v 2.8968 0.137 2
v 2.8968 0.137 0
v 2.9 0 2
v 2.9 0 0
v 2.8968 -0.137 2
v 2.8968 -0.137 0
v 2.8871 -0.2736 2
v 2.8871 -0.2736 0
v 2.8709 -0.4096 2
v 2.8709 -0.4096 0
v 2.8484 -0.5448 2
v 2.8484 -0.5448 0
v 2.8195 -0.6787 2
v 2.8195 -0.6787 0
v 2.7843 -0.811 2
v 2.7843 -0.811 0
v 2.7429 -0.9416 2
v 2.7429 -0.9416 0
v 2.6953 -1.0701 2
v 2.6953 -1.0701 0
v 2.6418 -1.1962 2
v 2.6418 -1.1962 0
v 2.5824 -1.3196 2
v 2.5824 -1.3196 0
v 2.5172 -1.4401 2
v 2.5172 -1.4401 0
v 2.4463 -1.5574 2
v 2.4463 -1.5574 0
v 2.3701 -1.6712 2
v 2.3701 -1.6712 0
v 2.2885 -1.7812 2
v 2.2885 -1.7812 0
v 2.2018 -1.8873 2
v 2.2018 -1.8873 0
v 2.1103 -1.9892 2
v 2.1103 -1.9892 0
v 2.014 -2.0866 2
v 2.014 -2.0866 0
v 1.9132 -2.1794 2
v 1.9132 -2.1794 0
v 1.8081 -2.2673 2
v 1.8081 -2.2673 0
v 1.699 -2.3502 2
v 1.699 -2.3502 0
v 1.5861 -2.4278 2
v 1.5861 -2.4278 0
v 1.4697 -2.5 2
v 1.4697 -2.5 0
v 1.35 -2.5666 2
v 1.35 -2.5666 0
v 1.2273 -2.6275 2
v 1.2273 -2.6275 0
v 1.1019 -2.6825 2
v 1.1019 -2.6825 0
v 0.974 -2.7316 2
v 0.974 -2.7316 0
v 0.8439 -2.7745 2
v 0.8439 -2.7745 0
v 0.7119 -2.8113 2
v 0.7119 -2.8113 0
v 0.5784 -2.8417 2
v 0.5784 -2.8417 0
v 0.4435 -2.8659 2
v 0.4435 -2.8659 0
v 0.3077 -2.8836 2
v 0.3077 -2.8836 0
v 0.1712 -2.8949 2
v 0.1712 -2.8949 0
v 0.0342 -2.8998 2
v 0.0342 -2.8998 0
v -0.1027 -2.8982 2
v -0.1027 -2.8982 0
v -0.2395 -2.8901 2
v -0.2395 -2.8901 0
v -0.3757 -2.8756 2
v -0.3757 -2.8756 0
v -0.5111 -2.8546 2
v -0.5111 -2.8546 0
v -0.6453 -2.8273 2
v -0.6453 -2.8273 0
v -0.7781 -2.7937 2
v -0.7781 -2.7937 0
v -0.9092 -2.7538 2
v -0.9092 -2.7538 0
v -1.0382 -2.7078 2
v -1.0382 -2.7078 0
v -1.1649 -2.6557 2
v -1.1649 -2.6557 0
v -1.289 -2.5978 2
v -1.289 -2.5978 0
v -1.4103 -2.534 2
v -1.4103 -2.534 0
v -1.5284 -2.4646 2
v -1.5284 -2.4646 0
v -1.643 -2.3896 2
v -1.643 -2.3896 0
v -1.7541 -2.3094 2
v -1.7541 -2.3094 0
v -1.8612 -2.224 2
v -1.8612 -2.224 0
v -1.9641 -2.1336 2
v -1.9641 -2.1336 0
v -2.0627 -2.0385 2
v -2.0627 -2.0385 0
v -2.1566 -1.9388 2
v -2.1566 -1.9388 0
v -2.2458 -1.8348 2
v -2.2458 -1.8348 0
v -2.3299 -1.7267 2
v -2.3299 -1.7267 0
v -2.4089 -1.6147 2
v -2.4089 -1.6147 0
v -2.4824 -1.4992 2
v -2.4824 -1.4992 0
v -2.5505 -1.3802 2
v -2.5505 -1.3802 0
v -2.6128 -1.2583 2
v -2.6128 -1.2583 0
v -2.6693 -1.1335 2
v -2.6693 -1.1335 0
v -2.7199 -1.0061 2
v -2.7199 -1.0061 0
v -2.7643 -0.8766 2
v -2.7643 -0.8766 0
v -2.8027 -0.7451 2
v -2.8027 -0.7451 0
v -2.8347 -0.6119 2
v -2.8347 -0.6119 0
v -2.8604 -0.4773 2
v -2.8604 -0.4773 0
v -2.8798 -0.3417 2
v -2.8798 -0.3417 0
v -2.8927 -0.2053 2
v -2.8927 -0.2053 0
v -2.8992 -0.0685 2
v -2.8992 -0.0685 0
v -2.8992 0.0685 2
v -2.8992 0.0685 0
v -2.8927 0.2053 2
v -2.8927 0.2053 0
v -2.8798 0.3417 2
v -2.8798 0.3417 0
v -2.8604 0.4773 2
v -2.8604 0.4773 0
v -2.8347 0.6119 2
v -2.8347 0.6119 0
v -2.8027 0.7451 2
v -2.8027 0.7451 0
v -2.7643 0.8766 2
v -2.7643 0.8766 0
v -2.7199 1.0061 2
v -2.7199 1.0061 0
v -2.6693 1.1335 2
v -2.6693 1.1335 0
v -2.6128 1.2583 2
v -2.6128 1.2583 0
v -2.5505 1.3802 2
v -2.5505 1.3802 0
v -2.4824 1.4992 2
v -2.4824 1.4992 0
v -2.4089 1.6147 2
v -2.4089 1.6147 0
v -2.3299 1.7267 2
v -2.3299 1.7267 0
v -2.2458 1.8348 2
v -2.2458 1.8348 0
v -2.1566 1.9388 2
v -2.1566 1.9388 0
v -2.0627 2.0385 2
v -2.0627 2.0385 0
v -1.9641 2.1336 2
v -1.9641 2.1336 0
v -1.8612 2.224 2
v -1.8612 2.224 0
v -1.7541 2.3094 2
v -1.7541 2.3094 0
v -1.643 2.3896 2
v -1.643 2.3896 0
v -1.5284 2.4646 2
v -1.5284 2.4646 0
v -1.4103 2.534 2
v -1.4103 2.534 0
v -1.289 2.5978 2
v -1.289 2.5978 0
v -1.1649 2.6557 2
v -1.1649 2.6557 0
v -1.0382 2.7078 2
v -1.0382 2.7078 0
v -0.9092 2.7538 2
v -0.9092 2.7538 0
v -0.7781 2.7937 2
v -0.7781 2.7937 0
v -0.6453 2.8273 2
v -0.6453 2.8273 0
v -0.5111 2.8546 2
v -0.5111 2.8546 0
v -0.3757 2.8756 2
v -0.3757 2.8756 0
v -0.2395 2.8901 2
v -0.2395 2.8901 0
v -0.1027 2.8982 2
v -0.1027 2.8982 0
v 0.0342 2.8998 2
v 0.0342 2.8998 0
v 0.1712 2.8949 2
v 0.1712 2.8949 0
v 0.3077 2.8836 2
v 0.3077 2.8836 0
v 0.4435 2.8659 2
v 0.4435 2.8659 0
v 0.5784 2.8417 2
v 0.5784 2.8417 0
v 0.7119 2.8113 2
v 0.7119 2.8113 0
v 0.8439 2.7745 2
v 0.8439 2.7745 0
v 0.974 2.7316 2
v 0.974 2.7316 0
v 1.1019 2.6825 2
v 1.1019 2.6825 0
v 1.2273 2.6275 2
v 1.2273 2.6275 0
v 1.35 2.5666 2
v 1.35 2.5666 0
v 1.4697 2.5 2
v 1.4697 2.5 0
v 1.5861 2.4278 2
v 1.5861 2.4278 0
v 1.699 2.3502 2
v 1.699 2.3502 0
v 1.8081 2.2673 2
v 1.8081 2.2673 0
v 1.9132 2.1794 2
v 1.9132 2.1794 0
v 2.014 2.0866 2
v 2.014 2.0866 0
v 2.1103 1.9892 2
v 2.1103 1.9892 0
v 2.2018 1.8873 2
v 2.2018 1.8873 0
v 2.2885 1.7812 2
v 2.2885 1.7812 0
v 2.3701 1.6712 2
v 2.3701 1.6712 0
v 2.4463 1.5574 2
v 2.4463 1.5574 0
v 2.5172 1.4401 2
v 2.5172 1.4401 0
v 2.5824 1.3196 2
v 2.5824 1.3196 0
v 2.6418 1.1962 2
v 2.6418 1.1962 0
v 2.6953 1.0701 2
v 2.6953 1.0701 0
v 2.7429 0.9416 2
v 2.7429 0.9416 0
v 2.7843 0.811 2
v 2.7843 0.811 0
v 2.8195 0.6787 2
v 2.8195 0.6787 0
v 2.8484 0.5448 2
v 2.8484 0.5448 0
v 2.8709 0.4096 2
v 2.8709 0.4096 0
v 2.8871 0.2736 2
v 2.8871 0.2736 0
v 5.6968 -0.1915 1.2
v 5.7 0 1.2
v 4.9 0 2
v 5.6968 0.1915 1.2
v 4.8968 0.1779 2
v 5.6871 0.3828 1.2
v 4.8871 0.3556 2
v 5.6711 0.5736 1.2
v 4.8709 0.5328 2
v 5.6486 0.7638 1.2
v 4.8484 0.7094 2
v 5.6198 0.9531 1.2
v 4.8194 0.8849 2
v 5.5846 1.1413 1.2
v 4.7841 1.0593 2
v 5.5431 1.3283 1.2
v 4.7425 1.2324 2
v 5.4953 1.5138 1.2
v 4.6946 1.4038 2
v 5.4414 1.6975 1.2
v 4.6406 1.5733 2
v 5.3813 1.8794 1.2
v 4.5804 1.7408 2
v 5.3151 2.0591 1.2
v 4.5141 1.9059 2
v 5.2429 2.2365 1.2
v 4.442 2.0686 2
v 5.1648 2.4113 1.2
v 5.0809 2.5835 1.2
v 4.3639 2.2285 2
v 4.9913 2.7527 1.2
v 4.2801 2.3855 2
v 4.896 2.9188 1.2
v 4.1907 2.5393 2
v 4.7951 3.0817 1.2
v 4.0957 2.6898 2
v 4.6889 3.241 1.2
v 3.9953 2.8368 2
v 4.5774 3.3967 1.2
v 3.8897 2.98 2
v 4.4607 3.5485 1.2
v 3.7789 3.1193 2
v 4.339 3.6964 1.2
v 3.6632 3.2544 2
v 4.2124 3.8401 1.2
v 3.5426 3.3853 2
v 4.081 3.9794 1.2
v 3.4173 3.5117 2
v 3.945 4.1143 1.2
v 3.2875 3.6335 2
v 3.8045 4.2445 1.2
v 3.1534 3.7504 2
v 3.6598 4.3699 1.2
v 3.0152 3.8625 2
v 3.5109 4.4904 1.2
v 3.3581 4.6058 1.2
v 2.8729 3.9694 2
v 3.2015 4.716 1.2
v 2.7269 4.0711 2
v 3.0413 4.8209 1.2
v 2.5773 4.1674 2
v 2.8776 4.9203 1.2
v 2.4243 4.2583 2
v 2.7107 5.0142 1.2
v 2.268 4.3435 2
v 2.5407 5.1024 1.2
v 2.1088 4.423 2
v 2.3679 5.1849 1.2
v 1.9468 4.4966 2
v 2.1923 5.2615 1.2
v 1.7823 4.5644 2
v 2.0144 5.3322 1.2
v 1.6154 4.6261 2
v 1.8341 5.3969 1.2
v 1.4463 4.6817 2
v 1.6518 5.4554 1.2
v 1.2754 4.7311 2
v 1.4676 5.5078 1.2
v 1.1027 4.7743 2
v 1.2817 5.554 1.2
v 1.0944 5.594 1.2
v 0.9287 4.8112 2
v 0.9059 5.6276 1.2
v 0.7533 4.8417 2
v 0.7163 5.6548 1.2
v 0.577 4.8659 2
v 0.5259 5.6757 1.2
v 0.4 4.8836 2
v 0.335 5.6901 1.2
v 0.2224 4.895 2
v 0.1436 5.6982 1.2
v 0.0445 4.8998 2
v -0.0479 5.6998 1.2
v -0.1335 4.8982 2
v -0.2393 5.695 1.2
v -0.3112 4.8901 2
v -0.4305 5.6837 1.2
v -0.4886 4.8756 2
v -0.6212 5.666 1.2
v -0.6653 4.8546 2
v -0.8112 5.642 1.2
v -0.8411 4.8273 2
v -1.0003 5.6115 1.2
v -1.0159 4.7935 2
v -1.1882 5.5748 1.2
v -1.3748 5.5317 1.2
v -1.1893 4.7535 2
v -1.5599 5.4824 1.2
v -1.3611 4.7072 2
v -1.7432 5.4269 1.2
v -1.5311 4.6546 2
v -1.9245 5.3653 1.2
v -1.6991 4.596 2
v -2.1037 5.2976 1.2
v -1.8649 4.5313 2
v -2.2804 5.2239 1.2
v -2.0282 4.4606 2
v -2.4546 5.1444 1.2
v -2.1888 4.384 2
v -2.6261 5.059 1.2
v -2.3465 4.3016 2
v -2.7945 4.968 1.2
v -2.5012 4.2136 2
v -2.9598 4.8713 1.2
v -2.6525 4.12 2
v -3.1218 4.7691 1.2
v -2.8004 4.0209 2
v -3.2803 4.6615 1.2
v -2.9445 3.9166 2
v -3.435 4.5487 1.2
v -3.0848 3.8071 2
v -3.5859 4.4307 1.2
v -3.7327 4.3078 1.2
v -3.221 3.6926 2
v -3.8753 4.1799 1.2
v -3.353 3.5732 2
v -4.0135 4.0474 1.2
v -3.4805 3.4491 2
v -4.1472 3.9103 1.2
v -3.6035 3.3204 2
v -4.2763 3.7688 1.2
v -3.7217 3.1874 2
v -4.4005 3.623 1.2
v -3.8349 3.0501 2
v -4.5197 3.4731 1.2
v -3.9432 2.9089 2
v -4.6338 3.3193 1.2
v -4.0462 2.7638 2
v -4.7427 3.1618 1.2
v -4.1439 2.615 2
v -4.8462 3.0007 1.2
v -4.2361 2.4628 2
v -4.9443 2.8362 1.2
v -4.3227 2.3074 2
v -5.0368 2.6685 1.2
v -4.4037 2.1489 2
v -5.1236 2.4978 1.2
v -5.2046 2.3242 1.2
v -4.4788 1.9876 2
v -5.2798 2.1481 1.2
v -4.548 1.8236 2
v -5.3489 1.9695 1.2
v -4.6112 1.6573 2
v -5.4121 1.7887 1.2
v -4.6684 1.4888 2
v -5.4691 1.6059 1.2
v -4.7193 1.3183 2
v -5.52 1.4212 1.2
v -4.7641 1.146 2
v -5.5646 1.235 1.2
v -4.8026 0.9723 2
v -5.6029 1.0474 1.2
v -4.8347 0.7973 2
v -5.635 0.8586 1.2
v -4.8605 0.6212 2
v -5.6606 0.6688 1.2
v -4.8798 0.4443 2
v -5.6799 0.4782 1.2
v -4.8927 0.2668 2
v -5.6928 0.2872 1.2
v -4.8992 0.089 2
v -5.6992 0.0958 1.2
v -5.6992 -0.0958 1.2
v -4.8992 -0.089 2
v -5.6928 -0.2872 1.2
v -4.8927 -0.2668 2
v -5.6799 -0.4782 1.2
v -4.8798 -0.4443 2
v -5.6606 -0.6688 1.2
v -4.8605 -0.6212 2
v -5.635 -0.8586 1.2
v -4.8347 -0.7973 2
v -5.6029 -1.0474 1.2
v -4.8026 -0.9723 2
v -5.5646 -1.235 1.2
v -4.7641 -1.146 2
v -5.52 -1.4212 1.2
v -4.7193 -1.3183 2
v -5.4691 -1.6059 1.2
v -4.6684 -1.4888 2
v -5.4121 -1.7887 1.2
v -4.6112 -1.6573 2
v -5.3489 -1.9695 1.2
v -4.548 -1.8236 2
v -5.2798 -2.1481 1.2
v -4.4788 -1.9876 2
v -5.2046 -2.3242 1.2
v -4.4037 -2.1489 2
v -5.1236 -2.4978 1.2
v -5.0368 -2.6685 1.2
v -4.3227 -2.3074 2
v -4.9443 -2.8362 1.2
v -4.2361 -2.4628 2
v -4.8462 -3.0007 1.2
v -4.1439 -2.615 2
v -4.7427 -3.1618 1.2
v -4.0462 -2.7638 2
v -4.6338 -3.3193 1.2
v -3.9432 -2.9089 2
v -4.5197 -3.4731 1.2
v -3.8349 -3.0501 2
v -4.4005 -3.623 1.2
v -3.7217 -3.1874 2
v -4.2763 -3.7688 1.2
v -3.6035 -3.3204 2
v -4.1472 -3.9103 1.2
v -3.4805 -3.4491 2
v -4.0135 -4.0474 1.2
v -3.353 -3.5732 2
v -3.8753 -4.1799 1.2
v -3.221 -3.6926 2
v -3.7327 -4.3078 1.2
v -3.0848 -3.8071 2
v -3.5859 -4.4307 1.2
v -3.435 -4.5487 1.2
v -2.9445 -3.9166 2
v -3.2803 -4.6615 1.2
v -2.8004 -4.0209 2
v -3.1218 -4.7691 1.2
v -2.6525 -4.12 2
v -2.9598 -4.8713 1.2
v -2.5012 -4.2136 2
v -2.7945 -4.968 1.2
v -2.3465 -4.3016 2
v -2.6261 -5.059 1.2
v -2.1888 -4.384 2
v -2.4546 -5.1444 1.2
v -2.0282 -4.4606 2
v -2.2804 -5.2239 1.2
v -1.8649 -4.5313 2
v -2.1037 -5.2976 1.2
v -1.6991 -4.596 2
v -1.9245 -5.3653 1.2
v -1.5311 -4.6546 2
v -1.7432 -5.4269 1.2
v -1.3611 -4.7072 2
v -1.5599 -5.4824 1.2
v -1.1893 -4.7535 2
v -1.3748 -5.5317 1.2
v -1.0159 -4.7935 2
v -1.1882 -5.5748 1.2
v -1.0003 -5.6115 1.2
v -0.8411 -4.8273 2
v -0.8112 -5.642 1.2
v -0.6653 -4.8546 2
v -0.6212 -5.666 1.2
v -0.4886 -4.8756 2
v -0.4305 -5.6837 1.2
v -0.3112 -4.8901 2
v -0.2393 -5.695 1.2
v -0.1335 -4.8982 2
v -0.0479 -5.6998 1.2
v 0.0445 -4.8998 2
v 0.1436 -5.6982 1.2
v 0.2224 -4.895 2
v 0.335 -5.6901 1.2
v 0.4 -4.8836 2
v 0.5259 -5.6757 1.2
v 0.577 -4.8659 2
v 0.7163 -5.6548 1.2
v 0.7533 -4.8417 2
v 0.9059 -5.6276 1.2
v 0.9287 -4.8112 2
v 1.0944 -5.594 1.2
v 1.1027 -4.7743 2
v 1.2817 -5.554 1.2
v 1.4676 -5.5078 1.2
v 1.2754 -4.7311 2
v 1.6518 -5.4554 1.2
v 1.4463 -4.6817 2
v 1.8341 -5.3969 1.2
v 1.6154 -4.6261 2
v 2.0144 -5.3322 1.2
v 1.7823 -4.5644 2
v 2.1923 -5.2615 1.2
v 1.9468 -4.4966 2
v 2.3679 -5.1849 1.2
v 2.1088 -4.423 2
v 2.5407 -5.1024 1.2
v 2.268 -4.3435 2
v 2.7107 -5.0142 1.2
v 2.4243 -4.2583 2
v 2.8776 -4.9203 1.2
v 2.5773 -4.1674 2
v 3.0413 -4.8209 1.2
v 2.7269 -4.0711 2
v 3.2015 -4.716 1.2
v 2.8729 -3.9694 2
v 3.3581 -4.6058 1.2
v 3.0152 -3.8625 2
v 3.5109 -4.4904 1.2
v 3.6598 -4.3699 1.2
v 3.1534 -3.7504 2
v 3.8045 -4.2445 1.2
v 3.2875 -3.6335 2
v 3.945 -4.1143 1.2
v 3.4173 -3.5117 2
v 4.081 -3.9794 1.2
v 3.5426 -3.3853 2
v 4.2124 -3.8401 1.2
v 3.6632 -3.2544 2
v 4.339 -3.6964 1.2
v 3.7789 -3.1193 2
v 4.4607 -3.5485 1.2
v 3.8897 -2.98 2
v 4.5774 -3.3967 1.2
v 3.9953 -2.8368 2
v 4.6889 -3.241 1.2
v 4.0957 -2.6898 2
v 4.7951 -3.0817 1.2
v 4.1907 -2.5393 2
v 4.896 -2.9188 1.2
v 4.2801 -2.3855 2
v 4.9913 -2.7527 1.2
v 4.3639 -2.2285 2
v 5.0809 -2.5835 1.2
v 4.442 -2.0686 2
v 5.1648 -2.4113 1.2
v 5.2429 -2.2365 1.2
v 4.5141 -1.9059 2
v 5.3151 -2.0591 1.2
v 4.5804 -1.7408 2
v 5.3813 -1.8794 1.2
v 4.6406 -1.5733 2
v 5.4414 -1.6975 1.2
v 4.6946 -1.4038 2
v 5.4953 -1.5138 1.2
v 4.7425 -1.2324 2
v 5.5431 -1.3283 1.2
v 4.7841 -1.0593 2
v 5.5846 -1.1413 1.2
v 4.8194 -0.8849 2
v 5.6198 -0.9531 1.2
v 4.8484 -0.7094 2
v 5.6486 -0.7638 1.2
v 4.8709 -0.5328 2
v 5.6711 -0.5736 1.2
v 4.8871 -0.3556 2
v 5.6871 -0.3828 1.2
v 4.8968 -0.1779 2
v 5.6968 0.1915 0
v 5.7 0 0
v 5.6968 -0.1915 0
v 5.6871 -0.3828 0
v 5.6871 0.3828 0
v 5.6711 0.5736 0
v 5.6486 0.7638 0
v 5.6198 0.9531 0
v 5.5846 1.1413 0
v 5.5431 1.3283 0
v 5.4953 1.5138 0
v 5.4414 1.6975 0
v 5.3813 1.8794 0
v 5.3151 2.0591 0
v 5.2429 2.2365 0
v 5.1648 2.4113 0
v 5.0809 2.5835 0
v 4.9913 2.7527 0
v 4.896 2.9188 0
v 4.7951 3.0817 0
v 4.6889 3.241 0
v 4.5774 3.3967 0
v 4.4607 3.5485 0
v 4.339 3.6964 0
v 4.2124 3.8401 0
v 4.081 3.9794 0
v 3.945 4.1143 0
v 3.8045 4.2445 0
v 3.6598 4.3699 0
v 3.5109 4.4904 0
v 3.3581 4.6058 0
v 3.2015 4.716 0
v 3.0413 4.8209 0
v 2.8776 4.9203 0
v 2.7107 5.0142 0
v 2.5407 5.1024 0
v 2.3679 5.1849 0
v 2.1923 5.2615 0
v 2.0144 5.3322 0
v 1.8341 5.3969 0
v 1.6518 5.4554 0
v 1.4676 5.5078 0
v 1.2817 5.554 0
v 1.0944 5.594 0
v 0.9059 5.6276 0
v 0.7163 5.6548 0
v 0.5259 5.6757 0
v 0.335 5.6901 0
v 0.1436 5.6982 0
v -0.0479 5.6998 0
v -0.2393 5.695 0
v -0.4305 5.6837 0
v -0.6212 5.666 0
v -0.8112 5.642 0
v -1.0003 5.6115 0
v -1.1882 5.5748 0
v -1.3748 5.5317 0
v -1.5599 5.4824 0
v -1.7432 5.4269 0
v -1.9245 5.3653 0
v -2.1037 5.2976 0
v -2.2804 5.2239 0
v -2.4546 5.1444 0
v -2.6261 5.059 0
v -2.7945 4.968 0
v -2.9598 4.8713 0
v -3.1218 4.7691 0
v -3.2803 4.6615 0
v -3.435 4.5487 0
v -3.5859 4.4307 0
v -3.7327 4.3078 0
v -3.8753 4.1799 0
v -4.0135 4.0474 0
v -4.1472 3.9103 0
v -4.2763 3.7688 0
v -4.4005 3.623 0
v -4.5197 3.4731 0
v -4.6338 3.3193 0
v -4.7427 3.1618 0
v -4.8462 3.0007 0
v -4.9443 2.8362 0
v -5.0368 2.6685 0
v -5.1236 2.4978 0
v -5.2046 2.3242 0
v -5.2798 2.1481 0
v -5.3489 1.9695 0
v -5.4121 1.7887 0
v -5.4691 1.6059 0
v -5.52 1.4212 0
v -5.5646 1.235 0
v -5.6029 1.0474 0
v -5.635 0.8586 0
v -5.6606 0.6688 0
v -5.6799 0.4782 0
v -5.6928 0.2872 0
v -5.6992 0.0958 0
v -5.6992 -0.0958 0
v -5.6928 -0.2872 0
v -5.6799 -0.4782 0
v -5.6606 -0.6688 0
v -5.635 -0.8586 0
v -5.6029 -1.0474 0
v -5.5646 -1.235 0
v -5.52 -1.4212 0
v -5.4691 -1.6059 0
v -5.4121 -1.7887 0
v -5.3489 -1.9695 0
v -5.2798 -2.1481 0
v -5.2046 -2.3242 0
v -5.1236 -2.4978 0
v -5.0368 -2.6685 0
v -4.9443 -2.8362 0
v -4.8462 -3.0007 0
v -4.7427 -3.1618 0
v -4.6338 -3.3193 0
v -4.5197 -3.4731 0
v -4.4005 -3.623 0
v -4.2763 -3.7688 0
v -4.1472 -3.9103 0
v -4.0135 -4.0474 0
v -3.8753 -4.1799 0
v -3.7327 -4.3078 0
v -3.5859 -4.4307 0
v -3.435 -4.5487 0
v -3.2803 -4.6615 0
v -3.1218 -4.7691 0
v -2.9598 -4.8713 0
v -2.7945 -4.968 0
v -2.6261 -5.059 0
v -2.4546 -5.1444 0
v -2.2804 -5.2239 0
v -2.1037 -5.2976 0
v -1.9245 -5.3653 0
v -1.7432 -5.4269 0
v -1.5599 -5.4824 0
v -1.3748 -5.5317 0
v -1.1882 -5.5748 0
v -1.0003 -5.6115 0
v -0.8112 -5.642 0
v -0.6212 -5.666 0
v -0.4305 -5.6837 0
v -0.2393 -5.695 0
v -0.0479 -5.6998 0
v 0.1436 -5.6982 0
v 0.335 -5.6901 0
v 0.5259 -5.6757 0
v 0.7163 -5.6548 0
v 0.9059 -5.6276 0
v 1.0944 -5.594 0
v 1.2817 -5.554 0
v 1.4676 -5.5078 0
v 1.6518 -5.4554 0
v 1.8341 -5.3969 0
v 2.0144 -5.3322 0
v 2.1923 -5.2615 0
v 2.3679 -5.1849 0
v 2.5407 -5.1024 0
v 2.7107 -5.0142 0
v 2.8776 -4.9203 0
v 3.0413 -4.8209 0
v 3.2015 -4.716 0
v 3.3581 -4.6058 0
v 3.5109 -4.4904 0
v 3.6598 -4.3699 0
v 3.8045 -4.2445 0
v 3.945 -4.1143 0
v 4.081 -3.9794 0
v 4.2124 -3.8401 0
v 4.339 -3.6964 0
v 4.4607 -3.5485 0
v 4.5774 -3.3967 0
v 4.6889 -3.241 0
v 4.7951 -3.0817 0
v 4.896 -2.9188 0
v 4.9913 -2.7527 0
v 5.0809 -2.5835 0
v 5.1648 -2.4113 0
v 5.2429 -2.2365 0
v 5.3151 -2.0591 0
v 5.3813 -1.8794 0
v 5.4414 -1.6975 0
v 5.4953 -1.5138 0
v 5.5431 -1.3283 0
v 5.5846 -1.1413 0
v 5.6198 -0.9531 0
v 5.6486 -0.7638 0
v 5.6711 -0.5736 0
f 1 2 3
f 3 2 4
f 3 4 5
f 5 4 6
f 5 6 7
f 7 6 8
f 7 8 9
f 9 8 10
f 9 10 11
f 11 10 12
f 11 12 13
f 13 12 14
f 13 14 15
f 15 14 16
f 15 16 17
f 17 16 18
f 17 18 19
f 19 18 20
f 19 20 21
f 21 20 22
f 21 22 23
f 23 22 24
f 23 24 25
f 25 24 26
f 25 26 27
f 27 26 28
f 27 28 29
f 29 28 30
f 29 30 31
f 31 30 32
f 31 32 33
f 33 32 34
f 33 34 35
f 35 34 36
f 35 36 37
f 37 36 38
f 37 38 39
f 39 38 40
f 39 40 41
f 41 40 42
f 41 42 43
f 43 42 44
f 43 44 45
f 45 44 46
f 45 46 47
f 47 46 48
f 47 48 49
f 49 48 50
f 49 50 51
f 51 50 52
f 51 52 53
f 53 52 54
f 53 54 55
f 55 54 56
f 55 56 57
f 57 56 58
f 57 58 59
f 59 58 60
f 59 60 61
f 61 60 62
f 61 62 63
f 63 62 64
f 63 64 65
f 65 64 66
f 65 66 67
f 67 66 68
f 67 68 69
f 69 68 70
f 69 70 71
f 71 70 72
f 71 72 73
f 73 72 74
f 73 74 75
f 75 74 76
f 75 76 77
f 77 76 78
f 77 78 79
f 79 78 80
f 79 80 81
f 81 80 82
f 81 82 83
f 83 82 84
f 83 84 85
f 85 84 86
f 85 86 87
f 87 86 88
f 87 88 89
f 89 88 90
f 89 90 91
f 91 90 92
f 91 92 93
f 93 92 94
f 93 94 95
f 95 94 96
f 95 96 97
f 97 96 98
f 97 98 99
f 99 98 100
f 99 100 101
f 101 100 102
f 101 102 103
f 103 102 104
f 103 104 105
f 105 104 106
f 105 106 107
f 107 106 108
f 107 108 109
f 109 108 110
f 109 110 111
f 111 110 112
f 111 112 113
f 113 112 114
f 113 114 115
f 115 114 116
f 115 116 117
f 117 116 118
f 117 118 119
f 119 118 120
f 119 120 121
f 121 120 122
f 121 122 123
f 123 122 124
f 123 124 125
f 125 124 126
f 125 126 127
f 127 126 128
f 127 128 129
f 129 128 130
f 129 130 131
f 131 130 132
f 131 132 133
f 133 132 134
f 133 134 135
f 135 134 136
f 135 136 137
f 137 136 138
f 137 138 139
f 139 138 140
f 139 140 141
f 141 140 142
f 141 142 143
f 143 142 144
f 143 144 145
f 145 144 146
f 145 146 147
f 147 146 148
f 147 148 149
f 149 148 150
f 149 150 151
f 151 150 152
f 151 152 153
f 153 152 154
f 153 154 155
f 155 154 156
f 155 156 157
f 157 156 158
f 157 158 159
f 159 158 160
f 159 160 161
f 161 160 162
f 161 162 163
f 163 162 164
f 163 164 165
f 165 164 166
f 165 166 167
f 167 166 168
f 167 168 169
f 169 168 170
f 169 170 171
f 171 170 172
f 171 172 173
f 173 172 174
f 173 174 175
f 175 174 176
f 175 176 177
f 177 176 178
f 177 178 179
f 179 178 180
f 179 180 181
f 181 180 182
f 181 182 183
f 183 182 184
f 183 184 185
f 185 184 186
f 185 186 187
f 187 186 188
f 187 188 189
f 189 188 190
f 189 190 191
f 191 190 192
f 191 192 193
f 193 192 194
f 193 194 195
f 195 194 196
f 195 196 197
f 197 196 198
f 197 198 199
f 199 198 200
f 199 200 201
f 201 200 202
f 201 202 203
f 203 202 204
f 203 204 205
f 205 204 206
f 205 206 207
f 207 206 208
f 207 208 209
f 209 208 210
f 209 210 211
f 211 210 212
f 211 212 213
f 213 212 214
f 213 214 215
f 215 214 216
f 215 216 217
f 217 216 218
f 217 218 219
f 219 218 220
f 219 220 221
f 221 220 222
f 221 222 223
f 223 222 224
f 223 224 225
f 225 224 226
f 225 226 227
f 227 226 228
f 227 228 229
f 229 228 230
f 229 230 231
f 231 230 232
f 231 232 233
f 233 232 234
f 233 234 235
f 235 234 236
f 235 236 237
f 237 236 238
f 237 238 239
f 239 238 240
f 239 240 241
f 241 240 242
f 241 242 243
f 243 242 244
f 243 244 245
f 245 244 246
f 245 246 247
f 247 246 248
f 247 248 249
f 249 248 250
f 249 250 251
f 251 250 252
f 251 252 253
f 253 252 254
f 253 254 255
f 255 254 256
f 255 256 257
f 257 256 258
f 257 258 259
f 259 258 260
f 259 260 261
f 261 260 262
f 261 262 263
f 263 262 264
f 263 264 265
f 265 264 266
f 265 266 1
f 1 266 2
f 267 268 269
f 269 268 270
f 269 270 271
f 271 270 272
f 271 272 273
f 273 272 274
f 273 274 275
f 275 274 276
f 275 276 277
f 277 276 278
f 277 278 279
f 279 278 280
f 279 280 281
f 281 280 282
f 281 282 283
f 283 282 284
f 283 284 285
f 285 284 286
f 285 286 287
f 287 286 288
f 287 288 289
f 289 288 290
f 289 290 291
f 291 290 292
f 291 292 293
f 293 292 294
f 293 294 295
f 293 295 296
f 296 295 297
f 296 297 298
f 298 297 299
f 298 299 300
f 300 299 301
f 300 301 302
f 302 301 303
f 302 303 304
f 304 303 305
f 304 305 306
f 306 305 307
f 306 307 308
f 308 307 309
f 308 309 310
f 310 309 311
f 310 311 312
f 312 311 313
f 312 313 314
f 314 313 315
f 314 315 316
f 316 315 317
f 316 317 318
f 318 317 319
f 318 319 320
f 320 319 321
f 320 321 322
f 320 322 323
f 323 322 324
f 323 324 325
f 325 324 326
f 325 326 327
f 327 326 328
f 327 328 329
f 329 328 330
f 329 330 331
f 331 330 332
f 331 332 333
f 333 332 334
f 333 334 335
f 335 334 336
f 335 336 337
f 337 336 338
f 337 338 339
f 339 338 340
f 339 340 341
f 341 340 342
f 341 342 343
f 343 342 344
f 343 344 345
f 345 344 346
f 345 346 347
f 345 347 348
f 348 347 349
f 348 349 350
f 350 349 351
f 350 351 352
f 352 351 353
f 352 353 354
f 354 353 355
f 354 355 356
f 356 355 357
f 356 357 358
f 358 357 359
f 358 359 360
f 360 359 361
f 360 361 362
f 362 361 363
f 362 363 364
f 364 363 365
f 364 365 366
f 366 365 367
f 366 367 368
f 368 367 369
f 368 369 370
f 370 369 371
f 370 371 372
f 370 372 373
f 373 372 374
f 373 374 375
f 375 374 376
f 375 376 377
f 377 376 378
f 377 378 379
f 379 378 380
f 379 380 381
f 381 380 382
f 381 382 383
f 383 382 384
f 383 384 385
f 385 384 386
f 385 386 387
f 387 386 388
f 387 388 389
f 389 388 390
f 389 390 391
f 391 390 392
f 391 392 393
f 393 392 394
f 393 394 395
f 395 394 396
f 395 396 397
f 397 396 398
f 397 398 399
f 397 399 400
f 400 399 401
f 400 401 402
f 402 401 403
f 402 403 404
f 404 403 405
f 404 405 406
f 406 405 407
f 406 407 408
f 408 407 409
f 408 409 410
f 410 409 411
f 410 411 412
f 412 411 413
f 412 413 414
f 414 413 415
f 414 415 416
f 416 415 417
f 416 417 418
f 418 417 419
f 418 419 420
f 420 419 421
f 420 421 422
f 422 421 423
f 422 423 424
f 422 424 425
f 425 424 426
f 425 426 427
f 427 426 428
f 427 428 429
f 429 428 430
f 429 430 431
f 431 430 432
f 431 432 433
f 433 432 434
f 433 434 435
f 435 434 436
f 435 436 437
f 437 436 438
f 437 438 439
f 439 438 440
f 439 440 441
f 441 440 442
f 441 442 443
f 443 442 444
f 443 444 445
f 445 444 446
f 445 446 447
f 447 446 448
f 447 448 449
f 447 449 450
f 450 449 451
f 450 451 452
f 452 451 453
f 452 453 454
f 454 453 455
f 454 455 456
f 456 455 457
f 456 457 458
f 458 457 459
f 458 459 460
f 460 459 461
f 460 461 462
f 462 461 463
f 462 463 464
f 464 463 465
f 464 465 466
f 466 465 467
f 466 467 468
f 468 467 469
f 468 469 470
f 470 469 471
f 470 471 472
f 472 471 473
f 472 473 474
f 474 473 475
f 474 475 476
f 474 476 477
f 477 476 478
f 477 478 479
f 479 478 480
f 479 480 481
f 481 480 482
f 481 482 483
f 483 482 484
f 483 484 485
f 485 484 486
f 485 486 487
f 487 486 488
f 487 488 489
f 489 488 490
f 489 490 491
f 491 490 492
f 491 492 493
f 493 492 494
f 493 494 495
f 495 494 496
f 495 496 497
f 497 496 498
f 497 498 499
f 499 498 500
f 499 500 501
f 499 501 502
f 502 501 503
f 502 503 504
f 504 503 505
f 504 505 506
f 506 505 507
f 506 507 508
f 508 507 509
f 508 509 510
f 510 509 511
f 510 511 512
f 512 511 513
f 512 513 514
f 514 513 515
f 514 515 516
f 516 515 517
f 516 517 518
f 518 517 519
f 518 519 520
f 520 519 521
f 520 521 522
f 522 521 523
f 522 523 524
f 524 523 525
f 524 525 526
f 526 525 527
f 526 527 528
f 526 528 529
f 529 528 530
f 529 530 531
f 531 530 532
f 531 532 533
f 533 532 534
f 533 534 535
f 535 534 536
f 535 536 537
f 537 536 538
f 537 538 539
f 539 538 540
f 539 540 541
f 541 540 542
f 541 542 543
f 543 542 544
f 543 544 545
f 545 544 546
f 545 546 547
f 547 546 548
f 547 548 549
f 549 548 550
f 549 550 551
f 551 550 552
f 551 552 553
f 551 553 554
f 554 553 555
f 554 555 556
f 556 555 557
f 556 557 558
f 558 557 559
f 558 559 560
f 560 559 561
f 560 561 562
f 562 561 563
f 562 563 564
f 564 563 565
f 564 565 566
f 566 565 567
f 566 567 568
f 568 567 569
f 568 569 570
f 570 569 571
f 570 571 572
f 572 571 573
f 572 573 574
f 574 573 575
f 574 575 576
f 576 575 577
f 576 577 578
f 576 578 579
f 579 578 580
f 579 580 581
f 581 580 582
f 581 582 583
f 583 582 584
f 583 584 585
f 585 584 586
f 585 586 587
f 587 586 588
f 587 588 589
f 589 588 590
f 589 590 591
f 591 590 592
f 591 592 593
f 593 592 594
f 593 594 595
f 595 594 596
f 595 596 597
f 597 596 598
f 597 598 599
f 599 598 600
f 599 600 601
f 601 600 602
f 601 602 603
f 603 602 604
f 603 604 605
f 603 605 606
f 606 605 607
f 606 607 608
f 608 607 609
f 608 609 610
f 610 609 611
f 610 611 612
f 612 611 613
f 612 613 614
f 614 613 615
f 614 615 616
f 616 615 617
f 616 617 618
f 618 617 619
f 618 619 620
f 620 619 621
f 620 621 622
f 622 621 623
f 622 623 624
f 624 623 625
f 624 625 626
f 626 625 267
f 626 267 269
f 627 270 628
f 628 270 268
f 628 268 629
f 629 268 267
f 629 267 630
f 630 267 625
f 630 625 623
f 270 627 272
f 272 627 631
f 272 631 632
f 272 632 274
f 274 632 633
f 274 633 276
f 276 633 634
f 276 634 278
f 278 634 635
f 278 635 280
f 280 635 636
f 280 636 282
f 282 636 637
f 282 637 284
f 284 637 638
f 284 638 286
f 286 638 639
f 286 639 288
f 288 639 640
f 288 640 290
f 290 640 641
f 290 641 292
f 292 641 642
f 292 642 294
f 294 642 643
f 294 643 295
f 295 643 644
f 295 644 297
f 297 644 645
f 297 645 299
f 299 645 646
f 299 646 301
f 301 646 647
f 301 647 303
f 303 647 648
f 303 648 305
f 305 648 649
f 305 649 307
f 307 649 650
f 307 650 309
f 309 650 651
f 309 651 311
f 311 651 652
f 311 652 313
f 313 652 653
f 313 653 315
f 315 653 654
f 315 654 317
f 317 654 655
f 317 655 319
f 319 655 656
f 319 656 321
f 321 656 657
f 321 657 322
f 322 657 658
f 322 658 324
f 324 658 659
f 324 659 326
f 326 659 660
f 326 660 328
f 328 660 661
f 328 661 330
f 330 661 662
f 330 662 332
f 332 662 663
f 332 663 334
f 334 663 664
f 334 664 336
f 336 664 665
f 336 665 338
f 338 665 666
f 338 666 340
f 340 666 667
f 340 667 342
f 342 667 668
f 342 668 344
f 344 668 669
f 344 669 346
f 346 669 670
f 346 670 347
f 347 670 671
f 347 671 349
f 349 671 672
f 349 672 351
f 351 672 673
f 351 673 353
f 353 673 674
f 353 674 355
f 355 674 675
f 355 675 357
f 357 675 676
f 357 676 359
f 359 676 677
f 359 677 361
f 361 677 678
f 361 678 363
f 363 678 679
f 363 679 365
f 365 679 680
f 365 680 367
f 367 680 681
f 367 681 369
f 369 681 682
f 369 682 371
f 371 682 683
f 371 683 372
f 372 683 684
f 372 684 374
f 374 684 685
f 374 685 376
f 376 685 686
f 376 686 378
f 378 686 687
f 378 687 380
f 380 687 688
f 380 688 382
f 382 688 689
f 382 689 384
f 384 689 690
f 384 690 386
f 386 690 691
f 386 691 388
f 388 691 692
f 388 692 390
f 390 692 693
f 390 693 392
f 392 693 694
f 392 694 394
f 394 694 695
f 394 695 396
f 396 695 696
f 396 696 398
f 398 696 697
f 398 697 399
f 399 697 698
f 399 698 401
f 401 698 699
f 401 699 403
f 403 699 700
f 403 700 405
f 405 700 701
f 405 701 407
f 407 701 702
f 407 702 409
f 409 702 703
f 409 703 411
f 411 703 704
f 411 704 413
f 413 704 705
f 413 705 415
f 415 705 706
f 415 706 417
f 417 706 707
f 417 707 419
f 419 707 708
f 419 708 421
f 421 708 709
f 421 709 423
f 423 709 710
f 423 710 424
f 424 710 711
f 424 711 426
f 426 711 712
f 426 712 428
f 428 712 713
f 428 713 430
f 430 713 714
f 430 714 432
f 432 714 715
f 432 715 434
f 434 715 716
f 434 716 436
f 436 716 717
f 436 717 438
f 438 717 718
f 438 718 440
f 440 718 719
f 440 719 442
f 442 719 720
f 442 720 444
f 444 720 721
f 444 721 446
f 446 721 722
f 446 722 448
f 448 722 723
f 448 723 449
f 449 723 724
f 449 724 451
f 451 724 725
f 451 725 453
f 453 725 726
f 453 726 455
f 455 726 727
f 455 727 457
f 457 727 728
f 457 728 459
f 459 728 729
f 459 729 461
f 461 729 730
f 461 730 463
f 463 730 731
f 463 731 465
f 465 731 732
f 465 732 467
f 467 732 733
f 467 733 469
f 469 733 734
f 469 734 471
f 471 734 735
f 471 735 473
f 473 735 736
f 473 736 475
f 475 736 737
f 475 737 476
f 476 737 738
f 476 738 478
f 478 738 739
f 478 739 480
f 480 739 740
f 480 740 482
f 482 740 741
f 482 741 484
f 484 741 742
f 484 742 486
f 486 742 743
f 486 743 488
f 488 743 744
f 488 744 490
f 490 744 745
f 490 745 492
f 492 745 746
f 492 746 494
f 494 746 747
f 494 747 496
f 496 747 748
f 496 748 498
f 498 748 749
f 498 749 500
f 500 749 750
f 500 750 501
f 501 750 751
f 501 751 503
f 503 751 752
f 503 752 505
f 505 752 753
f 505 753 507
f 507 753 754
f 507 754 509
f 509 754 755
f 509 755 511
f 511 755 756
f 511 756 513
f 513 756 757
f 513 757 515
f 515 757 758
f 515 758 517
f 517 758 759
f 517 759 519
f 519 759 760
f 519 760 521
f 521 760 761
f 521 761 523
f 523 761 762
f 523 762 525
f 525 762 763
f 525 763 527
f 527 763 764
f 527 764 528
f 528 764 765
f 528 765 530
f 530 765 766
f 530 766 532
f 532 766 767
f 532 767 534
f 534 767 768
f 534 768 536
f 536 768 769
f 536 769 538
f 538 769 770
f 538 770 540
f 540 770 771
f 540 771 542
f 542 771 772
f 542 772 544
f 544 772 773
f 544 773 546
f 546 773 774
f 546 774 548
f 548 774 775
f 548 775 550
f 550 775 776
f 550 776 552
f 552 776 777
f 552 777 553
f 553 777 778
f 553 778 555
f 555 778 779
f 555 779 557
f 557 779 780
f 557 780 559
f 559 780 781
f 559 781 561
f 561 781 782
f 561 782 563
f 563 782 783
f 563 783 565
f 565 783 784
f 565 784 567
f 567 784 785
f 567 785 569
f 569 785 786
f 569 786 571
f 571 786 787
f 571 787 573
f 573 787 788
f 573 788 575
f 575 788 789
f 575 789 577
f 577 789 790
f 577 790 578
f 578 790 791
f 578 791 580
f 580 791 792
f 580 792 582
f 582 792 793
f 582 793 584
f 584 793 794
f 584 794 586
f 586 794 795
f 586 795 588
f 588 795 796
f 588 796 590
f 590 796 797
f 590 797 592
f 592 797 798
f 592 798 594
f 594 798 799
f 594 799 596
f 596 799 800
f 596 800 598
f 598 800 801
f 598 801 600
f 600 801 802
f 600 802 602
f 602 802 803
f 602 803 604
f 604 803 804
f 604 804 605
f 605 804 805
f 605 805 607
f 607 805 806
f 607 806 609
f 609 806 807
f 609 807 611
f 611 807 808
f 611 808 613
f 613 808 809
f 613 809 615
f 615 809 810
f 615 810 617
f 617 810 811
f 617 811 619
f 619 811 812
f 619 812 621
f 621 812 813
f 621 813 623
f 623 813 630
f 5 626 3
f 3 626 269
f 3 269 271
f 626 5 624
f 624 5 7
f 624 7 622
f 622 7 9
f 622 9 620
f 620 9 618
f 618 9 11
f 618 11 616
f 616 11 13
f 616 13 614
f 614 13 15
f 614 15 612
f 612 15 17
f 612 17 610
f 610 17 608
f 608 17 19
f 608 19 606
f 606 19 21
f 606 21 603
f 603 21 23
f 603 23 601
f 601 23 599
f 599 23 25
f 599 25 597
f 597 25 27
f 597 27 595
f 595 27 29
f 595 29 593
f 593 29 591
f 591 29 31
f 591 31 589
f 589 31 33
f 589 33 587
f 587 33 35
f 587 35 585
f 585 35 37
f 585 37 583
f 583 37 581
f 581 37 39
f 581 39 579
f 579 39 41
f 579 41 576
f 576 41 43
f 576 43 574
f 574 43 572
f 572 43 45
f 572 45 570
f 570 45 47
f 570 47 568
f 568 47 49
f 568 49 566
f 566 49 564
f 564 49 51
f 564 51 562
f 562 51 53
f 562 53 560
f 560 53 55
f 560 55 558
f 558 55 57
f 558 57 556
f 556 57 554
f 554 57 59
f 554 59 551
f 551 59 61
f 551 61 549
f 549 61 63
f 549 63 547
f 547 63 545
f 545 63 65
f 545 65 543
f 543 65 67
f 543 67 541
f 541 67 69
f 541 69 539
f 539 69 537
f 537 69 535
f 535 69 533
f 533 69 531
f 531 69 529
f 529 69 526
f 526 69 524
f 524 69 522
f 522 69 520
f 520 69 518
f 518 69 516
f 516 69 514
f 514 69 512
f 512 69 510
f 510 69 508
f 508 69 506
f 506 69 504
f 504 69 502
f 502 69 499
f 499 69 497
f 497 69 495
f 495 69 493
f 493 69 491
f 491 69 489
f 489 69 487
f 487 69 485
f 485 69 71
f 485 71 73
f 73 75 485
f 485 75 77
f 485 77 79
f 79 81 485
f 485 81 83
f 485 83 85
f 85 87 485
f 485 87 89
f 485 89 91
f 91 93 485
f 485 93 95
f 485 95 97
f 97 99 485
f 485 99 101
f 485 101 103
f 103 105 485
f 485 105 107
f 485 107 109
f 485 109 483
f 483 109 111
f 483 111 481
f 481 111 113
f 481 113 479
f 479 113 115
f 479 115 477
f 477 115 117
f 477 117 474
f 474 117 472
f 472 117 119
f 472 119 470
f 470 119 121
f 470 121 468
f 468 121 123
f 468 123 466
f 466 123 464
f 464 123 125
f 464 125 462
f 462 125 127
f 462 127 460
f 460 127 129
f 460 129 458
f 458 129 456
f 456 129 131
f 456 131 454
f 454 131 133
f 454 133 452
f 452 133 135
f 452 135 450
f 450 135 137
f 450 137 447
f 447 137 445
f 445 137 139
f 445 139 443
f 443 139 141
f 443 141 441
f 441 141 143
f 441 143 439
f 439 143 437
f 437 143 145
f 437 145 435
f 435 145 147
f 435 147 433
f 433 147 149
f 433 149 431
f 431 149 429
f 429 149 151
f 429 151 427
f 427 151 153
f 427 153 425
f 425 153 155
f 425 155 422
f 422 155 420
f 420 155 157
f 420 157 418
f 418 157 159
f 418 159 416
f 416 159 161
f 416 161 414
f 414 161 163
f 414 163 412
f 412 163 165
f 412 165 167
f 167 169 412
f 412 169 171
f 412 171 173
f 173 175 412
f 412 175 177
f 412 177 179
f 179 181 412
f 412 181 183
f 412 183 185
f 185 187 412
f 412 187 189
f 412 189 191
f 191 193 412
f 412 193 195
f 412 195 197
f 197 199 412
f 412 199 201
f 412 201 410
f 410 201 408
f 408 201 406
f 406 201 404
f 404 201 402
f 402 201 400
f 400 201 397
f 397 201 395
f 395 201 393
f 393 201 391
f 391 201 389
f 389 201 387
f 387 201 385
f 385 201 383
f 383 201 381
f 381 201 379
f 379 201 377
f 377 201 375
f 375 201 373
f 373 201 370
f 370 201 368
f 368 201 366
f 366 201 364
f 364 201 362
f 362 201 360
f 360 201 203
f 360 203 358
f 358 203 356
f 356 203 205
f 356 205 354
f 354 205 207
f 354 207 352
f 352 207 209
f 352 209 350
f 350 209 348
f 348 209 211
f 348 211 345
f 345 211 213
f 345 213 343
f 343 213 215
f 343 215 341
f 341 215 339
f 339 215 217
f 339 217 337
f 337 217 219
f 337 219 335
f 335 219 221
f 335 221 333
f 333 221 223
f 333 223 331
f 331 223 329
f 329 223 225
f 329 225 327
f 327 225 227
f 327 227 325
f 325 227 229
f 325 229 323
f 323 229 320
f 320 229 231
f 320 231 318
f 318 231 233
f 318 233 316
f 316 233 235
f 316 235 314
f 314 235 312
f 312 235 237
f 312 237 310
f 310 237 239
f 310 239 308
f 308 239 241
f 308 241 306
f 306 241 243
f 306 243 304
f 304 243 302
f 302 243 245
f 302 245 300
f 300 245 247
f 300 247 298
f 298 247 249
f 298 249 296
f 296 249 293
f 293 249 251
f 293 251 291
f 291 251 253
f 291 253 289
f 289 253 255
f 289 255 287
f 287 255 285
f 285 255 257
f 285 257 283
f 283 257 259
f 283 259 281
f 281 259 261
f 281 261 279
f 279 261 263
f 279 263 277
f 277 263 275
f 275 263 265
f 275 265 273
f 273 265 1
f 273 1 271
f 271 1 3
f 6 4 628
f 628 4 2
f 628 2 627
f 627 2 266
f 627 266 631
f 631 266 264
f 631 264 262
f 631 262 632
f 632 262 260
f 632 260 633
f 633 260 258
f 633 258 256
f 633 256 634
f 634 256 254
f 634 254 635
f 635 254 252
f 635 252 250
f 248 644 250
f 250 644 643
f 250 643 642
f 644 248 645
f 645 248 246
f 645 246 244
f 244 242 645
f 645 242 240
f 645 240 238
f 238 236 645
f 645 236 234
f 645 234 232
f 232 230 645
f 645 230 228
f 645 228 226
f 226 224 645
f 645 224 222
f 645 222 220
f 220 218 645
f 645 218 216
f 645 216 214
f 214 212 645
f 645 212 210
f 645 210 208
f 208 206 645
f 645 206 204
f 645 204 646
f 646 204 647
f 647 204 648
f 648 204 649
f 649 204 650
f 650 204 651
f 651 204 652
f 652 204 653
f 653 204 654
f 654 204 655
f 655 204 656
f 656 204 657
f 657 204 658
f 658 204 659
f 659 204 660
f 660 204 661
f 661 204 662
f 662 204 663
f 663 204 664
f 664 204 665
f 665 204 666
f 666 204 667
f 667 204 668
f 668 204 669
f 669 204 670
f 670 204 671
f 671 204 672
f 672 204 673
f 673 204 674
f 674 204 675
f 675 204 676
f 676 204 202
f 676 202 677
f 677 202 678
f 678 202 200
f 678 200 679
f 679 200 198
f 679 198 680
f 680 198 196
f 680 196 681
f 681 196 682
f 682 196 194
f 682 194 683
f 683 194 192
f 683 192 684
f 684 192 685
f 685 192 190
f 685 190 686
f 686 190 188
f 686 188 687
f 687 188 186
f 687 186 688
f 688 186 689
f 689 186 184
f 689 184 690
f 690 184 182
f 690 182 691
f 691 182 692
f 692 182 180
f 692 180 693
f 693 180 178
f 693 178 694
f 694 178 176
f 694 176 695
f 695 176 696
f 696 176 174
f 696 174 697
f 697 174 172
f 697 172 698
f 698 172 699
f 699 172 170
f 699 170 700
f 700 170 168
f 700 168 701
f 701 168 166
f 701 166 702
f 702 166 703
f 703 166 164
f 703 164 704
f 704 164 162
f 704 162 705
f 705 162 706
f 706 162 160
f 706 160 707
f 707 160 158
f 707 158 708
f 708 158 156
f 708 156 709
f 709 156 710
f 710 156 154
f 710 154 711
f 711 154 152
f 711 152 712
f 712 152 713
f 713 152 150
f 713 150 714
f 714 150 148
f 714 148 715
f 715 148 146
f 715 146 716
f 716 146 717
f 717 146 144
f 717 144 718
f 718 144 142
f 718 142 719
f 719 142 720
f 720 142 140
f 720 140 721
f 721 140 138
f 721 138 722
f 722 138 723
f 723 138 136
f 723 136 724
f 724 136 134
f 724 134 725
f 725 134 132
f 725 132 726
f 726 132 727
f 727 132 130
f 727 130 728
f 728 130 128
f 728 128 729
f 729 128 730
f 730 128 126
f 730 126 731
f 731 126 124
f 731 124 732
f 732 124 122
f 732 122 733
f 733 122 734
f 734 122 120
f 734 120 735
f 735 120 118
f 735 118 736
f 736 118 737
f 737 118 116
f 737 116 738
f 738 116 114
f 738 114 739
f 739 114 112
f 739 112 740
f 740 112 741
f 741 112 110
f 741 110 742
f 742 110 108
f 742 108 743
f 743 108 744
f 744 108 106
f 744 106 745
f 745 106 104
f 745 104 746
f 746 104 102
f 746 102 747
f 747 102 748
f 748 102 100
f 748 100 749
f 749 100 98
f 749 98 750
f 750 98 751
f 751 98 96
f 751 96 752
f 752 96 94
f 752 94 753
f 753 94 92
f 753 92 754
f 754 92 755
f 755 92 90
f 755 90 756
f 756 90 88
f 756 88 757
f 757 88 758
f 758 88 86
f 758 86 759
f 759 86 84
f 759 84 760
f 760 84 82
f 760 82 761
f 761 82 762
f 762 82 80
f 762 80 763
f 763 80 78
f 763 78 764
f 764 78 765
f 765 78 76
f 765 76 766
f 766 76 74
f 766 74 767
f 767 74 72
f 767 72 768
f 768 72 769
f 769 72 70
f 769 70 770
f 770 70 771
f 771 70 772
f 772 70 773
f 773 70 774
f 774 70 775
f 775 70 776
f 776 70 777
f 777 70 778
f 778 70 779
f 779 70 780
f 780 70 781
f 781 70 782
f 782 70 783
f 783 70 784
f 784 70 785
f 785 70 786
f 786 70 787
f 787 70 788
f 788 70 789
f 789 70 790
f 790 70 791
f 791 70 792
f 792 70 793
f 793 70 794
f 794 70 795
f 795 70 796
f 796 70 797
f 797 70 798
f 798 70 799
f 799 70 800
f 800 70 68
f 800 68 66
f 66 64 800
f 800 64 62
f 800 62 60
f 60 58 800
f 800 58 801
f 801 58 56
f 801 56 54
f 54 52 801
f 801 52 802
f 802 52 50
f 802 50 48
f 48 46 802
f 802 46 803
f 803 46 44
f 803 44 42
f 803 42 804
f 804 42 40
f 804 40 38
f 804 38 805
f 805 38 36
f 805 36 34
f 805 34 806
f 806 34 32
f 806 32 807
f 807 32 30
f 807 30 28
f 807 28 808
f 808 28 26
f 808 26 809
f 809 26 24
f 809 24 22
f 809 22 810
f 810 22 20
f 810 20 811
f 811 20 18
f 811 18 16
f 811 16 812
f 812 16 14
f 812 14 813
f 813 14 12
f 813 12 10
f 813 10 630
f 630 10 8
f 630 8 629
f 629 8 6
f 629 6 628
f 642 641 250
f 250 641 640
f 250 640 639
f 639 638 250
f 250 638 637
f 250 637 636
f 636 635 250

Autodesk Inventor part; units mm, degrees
ref_plane "YZ Plane" through (0, 0, 0) normal (1, 0, 0) x (0, 1, 0)
ref_plane "XZ Plane" through (0, 0, 0) normal (0, 1, 0) x (-1, 0, 0)
ref_plane "XY Plane" through (0, 0, 0) normal (0, 0, 1) x (1, 0, 0)
sketch "Sketch1" plane through (0, 0, 0) normal (0, 0, 1) x (1, 0, 0)
  circle A0 centre (0, 0) radius 5.7
  dimension "d0" = 11.4
extrude "Extrusion1" add sketch "Sketch1" along normal blind 2
chamfer "Chamfer1" distance 0.8 angle 45 1 edges at (-5.7, 0, 2)
sketch "Sketch2" plane through (0, 0, 0) normal (0, 0, 1) x (1, 0, 0)
  circle A0 centre (0, 0) radius 2.9
  dimension "d6" = 5.8
extrude "Extrusion2" cut sketch "Sketch2" along normal up to surface (2 mm away)
properties part number "Insert2mm"
